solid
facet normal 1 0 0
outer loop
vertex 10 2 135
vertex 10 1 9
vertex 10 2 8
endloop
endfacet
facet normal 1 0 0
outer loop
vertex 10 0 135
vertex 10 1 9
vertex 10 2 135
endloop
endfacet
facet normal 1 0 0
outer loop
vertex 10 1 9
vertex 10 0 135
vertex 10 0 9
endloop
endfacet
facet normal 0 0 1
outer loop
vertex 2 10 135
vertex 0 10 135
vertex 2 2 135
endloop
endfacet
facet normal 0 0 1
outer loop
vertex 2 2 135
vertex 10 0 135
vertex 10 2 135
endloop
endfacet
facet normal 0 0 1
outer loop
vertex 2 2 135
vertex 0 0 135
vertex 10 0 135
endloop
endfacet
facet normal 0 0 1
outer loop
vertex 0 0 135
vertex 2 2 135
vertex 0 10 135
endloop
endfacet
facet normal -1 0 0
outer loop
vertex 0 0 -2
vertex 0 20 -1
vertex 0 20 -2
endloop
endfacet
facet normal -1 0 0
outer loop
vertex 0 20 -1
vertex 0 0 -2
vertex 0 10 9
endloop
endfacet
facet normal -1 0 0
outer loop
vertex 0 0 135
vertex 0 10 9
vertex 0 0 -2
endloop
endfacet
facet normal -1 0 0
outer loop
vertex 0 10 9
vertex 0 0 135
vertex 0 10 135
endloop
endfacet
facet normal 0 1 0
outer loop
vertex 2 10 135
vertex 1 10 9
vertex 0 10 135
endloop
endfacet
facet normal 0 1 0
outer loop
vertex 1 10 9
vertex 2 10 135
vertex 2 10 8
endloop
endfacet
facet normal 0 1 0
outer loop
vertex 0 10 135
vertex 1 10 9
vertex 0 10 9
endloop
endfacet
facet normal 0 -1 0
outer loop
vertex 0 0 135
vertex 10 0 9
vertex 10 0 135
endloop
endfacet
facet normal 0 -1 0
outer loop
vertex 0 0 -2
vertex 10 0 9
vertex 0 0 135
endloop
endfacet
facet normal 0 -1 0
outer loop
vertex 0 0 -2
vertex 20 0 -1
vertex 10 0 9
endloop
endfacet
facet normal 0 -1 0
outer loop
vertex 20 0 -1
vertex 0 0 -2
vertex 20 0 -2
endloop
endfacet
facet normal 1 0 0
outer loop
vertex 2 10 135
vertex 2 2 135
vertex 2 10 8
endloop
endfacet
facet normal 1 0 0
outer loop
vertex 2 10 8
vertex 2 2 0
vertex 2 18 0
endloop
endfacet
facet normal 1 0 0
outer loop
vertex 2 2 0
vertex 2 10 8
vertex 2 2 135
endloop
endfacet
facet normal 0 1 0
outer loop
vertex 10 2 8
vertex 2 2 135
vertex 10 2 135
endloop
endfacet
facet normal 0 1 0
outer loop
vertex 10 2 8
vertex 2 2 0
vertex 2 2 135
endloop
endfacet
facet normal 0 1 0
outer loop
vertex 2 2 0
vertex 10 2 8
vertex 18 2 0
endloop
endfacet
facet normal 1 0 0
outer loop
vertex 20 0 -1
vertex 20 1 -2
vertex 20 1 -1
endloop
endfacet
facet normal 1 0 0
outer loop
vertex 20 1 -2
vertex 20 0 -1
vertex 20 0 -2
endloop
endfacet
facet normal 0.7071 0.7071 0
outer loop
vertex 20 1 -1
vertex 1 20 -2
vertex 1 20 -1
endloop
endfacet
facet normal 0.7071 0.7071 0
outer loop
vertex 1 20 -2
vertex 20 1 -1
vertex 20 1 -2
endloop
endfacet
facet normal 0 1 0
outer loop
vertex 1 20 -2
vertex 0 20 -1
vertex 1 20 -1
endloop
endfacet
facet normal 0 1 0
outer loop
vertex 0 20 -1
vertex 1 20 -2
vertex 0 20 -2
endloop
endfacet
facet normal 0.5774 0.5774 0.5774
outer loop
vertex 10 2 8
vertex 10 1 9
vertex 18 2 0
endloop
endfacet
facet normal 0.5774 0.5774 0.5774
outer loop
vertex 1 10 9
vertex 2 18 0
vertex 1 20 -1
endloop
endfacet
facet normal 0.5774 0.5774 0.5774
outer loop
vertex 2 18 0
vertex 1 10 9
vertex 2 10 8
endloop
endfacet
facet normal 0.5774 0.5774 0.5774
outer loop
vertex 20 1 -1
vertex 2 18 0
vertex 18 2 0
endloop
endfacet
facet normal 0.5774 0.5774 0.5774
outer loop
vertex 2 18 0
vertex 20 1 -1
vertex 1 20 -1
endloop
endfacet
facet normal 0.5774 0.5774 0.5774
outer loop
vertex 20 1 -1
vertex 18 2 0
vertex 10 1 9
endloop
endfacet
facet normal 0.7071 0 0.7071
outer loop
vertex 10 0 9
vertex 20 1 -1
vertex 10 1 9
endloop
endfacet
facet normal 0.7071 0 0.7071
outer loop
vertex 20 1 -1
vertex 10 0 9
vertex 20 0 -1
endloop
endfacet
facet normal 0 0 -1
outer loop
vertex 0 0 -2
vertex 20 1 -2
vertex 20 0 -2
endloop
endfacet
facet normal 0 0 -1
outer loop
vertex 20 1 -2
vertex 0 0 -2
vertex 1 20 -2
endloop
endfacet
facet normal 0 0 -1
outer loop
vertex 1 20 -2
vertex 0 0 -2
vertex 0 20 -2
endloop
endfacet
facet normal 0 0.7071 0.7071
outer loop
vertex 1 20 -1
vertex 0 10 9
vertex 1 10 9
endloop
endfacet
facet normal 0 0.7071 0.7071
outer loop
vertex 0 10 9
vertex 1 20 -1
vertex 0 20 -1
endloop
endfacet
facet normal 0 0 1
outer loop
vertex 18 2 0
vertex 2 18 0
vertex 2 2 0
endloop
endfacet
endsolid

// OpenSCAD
difference(){
cube([10,10,30*3+15+30]);
translate([2,2,-1])
cube([10,10,30*3+15+30+2]);
}
translate([0,0,-2])
difference(){
hull(){
cube([20,1,1]);
cube([1,20,1]);
cube([1,1,20]);
}
translate([2,2,2])
cube(20);
}
